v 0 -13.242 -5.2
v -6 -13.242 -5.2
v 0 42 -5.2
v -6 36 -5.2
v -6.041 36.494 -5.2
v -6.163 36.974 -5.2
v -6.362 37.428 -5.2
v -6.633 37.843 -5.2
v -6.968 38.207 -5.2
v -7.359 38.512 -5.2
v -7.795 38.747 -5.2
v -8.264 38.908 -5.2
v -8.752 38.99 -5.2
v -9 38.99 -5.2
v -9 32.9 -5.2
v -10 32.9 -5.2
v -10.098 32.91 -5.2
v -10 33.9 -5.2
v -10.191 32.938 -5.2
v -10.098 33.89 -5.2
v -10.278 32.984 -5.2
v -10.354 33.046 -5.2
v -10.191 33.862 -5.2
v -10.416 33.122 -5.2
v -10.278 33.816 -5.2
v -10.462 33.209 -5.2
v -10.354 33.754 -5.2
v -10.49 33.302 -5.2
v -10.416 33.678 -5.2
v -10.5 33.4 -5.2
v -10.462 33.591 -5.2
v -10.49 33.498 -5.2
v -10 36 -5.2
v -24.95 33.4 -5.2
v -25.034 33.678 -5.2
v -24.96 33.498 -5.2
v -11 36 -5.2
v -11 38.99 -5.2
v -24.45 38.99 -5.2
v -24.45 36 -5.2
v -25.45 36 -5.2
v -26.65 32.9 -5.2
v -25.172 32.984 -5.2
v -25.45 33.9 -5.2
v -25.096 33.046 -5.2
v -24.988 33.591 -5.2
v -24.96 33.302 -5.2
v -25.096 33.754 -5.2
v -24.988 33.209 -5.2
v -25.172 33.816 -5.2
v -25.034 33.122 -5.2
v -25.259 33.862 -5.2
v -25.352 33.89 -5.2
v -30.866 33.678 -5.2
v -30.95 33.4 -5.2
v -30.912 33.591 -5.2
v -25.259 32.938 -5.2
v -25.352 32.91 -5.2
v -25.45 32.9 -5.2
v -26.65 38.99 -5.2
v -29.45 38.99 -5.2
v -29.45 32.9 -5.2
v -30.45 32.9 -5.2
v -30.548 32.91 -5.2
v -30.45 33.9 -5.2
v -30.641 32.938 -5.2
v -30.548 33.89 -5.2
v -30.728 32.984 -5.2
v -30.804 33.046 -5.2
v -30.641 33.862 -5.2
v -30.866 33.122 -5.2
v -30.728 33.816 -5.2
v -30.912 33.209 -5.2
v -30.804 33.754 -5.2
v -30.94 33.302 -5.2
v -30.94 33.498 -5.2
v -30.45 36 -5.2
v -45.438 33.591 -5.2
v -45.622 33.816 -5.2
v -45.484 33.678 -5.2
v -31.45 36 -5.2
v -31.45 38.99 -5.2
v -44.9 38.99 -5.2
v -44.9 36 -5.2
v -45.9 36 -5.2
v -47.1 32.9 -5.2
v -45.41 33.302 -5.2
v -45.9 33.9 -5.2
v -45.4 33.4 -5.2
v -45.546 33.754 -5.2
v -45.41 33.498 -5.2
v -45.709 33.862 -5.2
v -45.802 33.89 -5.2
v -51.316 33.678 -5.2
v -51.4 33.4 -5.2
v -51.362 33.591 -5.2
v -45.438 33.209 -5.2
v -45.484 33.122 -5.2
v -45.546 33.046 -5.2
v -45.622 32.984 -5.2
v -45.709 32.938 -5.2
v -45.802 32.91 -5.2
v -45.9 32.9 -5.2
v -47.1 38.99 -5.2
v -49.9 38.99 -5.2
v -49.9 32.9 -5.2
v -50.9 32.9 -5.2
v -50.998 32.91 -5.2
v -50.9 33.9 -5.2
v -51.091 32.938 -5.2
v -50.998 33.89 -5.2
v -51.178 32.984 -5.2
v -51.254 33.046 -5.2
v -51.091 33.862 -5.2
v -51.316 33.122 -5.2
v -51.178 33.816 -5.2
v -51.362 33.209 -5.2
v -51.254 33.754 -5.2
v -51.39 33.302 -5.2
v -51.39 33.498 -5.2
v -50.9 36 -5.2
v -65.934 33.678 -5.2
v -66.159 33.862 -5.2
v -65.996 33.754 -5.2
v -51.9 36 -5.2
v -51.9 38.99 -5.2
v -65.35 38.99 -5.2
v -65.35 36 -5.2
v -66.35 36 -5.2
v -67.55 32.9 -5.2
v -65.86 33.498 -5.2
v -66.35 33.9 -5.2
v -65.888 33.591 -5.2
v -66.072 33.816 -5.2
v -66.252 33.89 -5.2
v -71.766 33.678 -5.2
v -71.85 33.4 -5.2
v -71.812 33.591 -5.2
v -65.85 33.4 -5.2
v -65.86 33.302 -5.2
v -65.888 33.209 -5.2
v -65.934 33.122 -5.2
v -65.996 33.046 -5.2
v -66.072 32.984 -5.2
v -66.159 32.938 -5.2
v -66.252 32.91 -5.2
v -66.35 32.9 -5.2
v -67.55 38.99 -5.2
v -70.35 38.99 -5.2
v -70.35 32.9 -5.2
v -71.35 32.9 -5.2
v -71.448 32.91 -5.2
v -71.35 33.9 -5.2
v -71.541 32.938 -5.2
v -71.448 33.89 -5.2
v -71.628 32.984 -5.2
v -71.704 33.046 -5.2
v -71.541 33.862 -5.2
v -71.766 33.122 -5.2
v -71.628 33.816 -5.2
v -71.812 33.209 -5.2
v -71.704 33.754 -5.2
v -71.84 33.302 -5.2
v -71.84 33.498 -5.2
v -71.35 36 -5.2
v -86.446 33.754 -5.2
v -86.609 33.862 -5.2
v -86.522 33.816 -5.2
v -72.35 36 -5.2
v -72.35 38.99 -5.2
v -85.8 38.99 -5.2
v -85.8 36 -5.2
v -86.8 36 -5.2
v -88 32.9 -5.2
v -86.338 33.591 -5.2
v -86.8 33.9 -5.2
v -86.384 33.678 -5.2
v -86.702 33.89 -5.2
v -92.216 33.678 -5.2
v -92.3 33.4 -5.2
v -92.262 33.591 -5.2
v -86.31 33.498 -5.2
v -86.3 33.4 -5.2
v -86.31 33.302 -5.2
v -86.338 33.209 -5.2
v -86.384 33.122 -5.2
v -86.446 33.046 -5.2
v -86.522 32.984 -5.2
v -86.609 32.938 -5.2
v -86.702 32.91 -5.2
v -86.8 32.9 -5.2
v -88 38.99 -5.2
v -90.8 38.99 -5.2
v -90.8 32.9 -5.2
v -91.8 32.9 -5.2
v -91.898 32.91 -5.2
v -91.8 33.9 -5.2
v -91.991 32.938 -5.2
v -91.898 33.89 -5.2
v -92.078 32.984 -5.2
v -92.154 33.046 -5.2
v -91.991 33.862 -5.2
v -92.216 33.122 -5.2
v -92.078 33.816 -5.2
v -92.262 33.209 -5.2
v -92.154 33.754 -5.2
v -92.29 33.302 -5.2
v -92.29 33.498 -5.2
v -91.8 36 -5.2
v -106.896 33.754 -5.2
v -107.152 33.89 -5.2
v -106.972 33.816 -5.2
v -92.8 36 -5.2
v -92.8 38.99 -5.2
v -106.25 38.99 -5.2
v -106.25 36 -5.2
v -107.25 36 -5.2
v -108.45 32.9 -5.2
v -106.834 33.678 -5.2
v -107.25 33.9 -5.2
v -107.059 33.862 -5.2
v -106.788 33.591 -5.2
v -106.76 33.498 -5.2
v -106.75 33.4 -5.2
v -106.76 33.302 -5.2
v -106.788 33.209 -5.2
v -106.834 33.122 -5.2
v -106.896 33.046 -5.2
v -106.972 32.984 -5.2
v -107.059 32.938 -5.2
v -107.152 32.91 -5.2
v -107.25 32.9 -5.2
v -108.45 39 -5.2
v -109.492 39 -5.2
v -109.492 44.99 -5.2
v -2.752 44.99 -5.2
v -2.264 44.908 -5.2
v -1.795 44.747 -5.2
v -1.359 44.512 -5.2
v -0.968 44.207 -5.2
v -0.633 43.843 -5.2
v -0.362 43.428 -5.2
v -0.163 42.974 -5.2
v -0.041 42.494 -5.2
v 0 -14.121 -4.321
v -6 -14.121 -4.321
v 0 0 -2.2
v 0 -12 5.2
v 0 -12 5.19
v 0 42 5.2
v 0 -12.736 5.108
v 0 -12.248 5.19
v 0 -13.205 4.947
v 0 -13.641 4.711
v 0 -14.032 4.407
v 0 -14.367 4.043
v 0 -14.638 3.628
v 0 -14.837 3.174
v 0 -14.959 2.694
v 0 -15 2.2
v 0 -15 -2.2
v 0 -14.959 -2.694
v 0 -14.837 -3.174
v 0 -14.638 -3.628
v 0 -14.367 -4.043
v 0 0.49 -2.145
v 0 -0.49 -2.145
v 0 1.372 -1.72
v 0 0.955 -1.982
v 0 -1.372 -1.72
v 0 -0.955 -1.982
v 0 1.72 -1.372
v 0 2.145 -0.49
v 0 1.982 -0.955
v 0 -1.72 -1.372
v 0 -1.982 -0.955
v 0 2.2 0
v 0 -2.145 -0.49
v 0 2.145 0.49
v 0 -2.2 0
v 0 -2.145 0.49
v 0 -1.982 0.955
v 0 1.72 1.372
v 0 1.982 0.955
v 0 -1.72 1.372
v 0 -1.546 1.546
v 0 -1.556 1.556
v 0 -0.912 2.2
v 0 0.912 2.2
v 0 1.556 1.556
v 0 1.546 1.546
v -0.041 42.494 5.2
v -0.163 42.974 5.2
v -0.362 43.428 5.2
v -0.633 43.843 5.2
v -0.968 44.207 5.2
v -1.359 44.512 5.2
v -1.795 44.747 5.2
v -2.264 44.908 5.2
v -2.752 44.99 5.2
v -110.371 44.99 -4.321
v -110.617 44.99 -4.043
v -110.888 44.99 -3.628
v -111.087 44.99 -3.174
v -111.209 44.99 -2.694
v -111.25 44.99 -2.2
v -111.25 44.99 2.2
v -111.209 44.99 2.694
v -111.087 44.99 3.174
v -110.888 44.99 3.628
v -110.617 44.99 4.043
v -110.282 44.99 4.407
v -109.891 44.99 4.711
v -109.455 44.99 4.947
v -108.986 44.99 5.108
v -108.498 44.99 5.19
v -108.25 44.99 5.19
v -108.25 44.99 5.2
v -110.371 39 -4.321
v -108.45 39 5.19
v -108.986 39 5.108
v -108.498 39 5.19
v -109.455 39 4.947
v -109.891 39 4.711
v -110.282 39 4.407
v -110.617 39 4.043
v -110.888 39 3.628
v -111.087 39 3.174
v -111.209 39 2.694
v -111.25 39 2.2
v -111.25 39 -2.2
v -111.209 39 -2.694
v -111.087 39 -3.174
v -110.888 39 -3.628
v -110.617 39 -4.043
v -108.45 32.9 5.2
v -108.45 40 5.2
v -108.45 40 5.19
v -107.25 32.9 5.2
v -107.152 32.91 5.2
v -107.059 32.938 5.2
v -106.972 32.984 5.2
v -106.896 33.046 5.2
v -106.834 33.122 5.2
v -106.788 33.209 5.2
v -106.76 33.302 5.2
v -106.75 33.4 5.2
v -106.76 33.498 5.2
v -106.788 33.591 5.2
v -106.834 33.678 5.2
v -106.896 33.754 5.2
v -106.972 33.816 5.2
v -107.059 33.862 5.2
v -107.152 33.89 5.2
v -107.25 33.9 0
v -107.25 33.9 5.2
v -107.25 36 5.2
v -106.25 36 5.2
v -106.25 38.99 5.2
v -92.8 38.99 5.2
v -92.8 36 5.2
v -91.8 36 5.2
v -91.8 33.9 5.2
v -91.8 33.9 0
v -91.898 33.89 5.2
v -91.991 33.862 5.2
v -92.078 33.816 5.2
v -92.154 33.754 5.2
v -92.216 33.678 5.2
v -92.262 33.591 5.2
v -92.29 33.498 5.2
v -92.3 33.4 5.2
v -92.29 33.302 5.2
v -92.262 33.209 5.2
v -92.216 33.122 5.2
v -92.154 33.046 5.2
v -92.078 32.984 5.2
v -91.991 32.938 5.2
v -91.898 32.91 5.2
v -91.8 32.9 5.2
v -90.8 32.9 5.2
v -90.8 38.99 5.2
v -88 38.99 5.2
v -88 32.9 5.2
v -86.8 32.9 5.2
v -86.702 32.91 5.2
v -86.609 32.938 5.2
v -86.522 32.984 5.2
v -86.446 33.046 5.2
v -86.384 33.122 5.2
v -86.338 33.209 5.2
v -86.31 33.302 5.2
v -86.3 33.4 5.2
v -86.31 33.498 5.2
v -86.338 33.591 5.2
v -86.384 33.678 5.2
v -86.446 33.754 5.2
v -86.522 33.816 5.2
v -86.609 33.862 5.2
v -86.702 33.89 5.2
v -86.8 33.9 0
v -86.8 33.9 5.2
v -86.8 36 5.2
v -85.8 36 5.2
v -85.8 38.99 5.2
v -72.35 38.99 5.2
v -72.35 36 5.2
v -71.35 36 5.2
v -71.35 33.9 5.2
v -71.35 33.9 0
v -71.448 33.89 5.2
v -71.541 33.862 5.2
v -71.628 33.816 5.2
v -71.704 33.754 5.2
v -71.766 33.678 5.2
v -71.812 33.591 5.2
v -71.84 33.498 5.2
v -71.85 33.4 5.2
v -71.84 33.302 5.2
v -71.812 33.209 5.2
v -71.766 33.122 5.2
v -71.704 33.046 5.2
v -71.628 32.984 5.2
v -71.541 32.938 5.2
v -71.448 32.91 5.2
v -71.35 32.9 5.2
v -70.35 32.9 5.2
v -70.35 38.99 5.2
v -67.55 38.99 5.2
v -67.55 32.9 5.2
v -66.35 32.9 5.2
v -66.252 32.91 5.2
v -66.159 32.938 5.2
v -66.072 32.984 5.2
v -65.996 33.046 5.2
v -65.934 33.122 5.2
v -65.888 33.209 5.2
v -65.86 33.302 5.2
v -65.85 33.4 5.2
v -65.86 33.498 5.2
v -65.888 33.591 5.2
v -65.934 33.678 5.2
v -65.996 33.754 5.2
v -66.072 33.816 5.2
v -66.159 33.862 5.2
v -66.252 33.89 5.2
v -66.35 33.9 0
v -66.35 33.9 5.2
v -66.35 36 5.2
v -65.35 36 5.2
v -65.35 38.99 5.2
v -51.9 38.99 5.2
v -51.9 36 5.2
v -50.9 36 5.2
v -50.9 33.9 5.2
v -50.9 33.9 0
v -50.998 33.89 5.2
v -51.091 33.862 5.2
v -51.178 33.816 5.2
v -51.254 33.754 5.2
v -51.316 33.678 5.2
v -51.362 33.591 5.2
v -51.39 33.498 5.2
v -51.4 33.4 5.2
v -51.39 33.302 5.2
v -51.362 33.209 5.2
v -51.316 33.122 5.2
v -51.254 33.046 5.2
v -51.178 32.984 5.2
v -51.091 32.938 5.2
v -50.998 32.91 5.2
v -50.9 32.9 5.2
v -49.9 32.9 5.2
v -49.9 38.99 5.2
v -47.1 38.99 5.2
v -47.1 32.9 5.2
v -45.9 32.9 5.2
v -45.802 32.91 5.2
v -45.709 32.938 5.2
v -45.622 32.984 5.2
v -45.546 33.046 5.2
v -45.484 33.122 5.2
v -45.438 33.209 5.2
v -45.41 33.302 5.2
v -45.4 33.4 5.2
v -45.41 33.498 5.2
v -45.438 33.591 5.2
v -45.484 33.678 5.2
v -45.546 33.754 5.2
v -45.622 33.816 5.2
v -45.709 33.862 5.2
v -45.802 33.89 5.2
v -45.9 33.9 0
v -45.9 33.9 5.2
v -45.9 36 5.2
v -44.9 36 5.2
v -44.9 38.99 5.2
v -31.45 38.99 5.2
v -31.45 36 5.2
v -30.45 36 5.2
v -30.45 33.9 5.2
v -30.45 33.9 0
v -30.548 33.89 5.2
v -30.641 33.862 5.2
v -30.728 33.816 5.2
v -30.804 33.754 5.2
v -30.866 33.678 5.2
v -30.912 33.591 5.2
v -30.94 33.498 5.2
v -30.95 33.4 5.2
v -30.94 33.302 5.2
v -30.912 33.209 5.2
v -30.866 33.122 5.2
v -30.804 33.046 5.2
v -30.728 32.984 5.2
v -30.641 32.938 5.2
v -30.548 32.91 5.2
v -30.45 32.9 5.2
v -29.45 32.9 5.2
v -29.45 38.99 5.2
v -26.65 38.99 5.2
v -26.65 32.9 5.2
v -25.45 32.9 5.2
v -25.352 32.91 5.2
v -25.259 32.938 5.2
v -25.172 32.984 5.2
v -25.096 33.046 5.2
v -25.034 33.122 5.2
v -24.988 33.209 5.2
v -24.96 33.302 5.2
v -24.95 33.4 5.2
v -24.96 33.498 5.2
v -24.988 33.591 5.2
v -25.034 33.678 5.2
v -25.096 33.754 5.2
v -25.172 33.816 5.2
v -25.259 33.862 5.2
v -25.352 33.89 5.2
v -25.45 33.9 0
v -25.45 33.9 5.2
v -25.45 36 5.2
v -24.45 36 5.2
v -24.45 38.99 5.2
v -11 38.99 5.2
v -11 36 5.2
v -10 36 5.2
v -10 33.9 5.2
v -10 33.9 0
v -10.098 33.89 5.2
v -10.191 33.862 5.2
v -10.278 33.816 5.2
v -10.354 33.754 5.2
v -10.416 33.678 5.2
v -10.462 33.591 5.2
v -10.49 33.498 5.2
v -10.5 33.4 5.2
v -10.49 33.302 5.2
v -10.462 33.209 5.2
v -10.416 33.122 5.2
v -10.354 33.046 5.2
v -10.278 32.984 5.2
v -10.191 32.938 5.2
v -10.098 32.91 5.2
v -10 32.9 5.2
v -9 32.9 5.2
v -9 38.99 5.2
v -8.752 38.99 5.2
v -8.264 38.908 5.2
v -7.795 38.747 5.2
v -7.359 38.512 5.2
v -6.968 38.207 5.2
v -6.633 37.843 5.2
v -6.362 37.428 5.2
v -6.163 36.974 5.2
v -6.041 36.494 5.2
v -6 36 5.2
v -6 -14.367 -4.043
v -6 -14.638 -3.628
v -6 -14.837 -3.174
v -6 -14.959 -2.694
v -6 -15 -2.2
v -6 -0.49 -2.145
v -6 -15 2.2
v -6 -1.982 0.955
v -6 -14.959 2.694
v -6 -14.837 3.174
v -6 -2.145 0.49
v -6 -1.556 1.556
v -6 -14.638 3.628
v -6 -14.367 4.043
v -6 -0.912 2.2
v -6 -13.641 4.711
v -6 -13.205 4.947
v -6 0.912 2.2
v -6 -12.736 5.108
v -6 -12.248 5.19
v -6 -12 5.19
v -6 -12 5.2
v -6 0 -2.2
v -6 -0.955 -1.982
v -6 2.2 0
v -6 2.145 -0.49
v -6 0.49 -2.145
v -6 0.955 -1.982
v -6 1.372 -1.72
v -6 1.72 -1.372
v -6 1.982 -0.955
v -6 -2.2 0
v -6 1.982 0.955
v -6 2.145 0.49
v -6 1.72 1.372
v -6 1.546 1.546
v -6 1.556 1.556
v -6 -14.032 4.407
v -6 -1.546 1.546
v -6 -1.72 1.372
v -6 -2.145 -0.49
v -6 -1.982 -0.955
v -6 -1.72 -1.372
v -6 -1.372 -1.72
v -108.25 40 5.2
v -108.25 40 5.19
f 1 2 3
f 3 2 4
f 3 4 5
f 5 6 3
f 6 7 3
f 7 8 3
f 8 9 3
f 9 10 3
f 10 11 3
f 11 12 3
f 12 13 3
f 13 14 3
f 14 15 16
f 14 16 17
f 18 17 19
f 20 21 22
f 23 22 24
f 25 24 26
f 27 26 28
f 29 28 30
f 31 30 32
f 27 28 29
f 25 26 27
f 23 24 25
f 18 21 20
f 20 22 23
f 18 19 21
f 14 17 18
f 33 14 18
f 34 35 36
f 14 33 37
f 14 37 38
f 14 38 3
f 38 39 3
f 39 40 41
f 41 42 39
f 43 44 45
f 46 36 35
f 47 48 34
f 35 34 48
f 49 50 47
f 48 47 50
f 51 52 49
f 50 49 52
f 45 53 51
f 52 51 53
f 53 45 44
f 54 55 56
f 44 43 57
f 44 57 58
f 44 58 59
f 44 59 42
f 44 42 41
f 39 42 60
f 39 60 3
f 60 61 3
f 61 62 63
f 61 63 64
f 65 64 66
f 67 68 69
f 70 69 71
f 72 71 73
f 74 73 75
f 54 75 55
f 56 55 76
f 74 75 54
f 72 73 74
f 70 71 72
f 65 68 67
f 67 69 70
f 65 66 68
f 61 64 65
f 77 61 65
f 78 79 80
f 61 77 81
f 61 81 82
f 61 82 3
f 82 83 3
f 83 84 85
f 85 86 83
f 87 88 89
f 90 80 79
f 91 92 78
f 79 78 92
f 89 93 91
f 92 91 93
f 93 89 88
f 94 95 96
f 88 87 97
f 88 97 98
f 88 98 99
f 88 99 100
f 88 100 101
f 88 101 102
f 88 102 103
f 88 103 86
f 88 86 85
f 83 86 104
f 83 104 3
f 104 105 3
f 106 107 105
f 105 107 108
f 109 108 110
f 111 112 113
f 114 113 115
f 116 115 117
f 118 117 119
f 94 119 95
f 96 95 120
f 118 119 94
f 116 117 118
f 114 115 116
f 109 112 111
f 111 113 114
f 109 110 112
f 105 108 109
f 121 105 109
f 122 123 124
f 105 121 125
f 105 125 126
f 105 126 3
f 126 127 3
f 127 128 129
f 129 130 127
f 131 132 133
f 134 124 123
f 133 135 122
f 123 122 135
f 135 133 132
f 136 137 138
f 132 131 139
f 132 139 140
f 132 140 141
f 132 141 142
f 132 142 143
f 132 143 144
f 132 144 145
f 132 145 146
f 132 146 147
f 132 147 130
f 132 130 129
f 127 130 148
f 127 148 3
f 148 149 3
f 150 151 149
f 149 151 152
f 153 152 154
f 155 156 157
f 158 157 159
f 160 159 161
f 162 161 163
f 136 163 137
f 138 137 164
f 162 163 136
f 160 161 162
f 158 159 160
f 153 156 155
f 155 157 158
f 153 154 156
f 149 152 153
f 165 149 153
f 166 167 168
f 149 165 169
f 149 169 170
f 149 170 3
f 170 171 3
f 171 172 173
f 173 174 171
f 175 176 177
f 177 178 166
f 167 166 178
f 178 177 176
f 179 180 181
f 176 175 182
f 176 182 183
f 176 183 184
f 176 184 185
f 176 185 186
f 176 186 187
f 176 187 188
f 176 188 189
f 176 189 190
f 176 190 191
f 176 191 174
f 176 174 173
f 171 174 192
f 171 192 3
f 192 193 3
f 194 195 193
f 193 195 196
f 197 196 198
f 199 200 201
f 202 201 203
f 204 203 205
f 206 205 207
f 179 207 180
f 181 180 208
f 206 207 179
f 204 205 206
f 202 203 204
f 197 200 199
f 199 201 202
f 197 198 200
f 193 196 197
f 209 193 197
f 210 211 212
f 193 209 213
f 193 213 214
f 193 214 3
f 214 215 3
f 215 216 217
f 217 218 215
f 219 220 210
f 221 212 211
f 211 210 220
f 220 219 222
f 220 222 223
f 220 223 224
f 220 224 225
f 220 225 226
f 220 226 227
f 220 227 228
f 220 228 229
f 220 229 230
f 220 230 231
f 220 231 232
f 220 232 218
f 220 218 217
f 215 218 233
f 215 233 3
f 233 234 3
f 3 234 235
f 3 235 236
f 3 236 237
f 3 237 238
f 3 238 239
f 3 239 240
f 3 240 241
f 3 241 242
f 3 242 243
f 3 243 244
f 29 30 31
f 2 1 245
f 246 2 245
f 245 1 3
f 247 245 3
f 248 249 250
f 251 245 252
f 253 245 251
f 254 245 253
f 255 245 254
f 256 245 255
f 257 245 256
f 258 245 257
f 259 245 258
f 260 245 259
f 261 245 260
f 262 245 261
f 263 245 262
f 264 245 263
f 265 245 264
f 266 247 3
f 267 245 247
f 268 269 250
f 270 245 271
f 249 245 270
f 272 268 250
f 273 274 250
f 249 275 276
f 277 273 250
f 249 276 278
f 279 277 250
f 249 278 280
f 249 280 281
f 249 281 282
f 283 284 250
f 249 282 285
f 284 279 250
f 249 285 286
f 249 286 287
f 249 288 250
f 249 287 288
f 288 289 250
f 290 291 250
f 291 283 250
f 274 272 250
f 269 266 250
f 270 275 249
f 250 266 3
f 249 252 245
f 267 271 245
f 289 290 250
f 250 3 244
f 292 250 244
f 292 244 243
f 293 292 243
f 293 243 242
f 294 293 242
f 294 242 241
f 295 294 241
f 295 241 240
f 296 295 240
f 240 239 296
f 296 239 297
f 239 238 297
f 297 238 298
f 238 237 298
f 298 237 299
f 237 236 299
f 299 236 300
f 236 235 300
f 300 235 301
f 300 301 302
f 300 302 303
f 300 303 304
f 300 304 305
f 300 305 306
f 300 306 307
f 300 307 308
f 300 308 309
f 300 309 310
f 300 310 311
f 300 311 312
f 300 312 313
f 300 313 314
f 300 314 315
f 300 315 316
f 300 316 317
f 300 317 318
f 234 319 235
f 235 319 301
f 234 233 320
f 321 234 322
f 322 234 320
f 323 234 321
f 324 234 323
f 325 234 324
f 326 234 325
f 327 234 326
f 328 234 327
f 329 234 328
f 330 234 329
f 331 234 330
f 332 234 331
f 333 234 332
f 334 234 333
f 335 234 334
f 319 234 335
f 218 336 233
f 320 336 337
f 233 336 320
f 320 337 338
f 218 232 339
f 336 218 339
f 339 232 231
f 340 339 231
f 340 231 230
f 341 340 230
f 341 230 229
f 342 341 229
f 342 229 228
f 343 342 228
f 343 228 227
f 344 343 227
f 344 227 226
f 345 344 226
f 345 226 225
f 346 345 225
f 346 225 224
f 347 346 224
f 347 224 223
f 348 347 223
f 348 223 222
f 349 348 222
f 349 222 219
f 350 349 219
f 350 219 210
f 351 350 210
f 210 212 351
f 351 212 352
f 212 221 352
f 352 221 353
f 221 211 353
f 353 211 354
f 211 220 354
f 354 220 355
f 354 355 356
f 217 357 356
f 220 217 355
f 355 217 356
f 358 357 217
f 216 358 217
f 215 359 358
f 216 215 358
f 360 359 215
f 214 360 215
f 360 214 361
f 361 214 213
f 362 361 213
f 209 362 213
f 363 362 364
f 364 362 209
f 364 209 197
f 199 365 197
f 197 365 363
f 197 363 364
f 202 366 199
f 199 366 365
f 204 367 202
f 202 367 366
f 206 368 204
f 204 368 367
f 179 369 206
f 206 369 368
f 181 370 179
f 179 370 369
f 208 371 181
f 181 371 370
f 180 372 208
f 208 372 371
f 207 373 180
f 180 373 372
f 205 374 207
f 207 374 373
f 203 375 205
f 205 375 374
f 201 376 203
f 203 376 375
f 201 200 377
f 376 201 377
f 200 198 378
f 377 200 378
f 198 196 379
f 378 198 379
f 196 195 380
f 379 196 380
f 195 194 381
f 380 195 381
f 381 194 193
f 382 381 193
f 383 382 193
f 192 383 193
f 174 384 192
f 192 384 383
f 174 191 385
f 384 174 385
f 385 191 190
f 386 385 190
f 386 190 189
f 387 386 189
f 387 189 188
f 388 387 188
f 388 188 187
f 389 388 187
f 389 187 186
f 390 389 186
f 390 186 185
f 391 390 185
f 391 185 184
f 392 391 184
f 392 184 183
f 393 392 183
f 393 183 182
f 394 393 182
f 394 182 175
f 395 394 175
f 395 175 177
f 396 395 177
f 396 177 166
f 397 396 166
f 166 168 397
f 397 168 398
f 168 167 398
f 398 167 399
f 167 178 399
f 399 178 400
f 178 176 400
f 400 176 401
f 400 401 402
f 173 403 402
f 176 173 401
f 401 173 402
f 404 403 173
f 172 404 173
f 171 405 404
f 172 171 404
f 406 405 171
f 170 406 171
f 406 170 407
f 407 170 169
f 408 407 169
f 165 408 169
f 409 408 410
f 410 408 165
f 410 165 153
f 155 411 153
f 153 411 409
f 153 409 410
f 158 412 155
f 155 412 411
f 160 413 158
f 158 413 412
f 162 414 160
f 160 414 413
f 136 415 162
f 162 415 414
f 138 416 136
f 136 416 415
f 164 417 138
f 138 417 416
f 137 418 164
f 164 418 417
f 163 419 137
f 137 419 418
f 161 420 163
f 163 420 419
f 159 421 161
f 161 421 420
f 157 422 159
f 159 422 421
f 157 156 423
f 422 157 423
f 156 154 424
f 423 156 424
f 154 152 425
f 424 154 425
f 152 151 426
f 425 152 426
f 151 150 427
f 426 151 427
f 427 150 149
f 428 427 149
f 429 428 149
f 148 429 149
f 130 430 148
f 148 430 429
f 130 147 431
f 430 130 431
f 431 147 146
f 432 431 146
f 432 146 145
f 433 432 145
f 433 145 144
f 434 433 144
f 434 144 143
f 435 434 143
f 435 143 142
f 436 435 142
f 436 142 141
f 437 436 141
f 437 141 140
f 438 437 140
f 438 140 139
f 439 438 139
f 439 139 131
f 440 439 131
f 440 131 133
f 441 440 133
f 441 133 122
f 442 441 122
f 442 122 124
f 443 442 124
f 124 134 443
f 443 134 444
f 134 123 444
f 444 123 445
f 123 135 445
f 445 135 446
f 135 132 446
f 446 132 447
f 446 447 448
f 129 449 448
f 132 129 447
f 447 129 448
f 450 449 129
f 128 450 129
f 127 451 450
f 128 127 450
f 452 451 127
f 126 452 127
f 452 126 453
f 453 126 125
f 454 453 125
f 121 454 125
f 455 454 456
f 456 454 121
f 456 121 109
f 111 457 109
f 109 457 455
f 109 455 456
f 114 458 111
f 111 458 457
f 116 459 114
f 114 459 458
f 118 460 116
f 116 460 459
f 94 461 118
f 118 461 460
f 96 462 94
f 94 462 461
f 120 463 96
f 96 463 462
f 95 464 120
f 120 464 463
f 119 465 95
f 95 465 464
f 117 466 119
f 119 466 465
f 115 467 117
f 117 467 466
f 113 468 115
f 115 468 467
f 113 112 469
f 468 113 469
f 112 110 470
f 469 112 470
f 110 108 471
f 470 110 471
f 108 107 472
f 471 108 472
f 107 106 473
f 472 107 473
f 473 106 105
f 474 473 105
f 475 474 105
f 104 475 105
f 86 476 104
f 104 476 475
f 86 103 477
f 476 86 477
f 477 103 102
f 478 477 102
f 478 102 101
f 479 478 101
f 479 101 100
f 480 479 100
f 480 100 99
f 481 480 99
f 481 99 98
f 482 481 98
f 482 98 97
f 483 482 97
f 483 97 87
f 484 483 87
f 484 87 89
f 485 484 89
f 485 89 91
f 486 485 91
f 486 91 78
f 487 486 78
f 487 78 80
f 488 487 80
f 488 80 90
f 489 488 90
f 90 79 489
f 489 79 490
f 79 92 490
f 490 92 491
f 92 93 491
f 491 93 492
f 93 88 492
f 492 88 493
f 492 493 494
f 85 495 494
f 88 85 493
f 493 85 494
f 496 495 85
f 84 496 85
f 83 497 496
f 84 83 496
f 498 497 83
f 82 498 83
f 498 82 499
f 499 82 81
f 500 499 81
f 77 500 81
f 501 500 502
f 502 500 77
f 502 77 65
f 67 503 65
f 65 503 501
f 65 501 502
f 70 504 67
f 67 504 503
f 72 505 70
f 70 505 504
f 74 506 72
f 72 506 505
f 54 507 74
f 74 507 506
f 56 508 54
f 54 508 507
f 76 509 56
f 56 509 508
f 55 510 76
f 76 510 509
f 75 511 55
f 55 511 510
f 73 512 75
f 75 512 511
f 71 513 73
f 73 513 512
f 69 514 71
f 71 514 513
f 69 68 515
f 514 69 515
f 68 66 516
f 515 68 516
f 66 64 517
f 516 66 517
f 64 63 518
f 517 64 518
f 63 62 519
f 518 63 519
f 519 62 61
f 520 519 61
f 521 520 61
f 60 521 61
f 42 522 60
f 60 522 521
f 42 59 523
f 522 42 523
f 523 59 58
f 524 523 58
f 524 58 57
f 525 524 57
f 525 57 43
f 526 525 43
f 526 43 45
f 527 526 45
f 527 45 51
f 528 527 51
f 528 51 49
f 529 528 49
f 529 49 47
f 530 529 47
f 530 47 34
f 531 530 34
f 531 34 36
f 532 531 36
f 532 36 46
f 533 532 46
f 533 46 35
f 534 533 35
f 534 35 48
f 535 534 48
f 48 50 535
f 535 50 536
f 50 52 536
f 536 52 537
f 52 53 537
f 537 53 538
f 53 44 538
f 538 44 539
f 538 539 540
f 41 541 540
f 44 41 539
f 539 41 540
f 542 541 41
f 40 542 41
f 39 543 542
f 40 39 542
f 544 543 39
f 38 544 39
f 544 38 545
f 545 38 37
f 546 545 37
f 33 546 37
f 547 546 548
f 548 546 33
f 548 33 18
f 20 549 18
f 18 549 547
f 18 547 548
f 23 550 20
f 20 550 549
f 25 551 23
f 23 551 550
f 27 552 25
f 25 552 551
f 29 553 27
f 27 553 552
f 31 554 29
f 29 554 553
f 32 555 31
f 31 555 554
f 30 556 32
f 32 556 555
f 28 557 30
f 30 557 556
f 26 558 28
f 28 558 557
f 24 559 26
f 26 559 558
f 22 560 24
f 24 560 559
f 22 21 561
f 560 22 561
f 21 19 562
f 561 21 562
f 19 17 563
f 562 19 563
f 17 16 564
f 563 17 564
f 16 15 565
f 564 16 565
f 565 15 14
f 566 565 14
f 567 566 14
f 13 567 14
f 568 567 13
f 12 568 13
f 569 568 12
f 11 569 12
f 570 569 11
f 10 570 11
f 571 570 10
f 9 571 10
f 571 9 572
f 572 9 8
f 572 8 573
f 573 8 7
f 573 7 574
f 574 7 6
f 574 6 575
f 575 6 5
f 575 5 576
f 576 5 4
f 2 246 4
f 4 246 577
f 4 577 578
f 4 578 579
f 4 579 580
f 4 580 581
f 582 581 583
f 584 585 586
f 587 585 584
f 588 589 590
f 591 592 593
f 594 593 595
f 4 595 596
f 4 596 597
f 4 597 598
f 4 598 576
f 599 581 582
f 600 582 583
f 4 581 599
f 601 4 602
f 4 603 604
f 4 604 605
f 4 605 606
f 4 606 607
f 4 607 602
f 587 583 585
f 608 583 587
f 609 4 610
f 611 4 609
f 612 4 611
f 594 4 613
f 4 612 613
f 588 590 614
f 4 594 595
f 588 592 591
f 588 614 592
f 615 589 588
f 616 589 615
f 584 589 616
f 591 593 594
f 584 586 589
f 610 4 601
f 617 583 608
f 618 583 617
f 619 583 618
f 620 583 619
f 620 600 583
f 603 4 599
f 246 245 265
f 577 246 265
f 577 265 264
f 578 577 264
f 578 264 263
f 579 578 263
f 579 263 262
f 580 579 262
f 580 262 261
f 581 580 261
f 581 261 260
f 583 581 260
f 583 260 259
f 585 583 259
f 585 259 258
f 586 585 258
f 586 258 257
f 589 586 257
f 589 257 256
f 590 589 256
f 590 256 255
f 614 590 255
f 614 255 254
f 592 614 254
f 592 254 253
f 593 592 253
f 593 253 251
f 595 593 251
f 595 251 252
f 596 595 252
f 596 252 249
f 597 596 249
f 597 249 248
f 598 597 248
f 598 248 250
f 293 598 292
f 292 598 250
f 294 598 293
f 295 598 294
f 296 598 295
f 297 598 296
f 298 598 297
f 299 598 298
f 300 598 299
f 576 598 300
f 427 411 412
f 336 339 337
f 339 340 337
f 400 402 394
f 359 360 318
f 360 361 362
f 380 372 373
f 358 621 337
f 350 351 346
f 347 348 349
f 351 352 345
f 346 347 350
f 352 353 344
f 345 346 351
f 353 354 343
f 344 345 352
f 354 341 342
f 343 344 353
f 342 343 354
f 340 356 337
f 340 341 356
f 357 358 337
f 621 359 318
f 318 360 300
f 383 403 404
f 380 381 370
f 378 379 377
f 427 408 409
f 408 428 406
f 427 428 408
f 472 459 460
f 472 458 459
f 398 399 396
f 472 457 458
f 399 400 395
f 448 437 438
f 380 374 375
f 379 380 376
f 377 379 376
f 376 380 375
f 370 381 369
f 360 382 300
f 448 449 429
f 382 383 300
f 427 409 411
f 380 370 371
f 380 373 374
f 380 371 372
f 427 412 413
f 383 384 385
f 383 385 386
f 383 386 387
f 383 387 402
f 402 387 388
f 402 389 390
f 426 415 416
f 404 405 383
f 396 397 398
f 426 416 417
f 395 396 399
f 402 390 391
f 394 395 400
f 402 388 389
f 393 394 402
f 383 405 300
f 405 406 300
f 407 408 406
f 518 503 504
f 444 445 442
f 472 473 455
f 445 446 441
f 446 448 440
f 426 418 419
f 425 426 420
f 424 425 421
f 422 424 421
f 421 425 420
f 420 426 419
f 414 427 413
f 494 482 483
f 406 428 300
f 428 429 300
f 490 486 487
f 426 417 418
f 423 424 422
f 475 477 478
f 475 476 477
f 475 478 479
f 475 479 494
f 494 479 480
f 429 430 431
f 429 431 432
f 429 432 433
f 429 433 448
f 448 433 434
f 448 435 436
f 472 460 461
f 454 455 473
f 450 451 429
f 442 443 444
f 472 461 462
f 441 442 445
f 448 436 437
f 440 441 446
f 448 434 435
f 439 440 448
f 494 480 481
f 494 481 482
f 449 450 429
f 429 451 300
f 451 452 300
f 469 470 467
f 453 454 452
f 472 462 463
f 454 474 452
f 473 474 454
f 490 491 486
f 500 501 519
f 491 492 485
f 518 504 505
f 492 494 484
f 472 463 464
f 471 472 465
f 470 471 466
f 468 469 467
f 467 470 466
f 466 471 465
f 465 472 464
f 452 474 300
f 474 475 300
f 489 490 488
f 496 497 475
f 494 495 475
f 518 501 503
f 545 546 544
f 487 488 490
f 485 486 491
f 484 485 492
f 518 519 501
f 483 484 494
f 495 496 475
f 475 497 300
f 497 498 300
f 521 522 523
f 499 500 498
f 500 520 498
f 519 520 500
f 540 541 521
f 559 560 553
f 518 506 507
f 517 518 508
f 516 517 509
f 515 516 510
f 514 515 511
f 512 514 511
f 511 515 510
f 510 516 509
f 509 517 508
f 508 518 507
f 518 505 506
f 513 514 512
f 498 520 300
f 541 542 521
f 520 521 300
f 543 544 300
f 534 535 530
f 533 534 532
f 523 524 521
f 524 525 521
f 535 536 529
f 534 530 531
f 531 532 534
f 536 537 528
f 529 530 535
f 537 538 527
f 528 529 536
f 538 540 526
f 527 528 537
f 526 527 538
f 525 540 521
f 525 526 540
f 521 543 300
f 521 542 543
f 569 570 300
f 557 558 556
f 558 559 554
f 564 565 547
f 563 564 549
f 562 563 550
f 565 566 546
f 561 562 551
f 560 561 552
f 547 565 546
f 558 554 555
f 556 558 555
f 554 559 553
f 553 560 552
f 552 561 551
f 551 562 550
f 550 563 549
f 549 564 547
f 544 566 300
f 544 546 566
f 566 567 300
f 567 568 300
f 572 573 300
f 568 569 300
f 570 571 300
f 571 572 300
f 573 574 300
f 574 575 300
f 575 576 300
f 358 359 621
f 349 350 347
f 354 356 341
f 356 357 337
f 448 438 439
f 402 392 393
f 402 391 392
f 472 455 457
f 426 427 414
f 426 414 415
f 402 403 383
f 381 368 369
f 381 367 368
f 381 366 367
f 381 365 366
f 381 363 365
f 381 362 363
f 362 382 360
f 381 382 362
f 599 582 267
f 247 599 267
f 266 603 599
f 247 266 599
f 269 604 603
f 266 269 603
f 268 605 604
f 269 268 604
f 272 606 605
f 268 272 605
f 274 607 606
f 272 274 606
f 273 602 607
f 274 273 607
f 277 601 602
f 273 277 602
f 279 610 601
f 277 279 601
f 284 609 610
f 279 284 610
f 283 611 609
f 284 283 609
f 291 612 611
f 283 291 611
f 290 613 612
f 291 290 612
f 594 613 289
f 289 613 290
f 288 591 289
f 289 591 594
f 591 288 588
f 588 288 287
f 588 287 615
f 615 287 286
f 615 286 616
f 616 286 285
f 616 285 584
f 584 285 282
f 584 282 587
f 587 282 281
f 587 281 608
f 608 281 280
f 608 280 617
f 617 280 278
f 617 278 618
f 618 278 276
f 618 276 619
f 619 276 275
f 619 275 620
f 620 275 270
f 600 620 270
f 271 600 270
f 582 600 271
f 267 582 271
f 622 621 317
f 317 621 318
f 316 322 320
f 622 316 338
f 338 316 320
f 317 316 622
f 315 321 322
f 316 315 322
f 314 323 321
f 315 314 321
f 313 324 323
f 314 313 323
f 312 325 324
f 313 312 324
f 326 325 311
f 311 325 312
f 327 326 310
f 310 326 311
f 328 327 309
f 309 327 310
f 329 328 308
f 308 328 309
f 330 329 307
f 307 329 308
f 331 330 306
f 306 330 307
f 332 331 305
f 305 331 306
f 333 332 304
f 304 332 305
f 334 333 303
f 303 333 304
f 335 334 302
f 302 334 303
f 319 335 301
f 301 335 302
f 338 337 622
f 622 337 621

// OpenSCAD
// file: functions.scad
/*******************************************************************

This OpenSCAD code and its rendered 3D model are part of the

	Kühling&Kühling RepRap Industrial 3D Printer


All details, BOM, assembling instructions and latest sources:
	http://kuehlingkuehling.de

Designed and developed by:
	Jonas Kühling <mail@jonaskuehling.de>
	Simon Kühling <mail@simonkuehling.de>

Licensed under:
	Creative Commons Attribution-ShareAlike
	CC BY-SA 3.0
	http://creativecommons.org/licenses/by-sa/3.0/

*******************************************************************/

module teardrop (r=4.5,h=20,alpha=45,teardropcorner=0,fulldrop=0){		// tear drop hole for top-centering
											// use teardropcorner=1 for bottom horizontal corners
	render()
	translate([-h/2,0,0])
		rotate([-270,0+(teardropcorner*180),90])
			difference(){
				linear_extrude(height=h){
					circle(r);
					polygon(points=[[0,0],[r*cos(alpha),r*sin(alpha)],[0,r/sin(alpha)],[-r*cos(alpha),r*sin(alpha)]], paths=[[0,1,2,3]]);
				}
				if(fulldrop==0) 
					translate([0,(r/sin(alpha))/2+r,h/2]) cube([2*r+2,r/sin(alpha),h+2],center=true);
			}
}

//teardrop(4.5,22,fulldrop=true);



module teardropcentering (r=4.5,h=20,alpha=45){				// tear drop hole for top-centering
	centering_offset_factor = 1.1;
	render()
	translate([-h/2,0,0])
		rotate([-270,0,90])
			difference(){
				linear_extrude(height=h){
					circle(r, $fn=24);
					polygon(points=[[0,0],[r*cos(alpha),r*sin(alpha)],[0,r/sin(alpha)],[-r*cos(alpha),r*sin(alpha)]], paths=[[0,1,2,3]]);
				}
				translate([0,(r/sin(alpha))/2+r*centering_offset_factor,h/2]) cube([2*r+2,r/sin(alpha),h+2],center=true);
			}
}

//teardropcentering();



module teardropcentering_half (r=4.5,h=20, bottom=0,alpha=45){				// tear drop hole for top-centering
																// upper half (bottom=0) or bottom half (bottom=1)
	centering_offset_factor = 1.2;
	render()
	translate([-h/2,0,0])
		rotate([-270,0,90])
			difference(){
				linear_extrude(height=h){
					circle(r, $fn=24);
					polygon(points=[[0,0],[r*cos(alpha),r*sin(alpha)],[0,r/sin(alpha)],[-r*cos(alpha),r*sin(alpha)]], paths=[[0,1,2,3]]);
				}
				translate([0,(r/sin(alpha))/2+r*centering_offset_factor,h/2]) cube([2*r+2,r/sin(alpha),h+2],center=true);
				translate([0,-(r*centering_offset_factor)/2-0.5+bottom*(r*centering_offset_factor+1),h/2]) cube([2*r+2,r*centering_offset_factor+1,h+2],center=true);
			}
}

//teardropcentering_half(bottom=0);


module polyhole(d,h){
	n = max(round(2 * d),3);
	cylinder(h = h, r = (d / 2) / cos (180 / n), $fn = n, center=true);
}



module roundcorner(radius,edge_length){
	render()
	translate([0,0,-1])
		difference(){
			translate([-1,-1,0])
				cube(size = [radius+1,radius+1,edge_length+2], center = false);
			translate(v = [radius,radius,-1])
				cylinder(h = edge_length+4, r=radius, center=false,$fs=0.1);
		}
}

//roundcorner(5,5);



module roundcorner_tear(radius,edge_length){
	render()
	difference(){
		translate([-1,-1,-1])
			cube(size = [edge_length+2, radius+1, radius+1], center = false);
		translate([(edge_length+4)/2-2, radius, radius])
			teardrop(radius, edge_length+4,teardropcorner=1);
	}
}

//roundcorner_tear(8,20);


module roundedge_tear(radius){
	render()
	difference(){
		translate([-1,-1,-1])
			cube(size = [radius+1, radius+1, radius+1], center = false);
		translate([radius,radius,radius])
			union(){
				sphere(r=radius, $fs=0.1);
				translate([0,0,-radius])
					cylinder(r1=(radius*sin(45))-(radius-(radius*sin(45))),r2=radius*sin(45),h=(radius-(radius*sin(45))), $fs=0.1);
			}
	}
}

//roundedge_tear(20);



module roundedge(radius){
	render()
	difference(){
		translate([-1,-1,-1])
			cube(size = [radius+1, radius+1, radius+1], center = false);
		translate([radius,radius,radius])
			sphere(r=radius, $fs=0.1);
	}
}

//roundedge(5);


module nut_trap(nut_wrench_size,trap_height,vertical=0, clearance=0.2,center=true){		// M3 wrench size = 5.5
	radius = cornerdiameter(nut_wrench_size+2*clearance) /2;
	rotate([0,vertical*90,0])
		cylinder(h = trap_height, r = radius, center=center, $fn = 6);
}

//nut_trap(5,5,0);

module nut_slot(nut_wrench_size,nut_height, nut_elevation,vertical=0, clearance=0.2){		// M3 wrench size = 5.5
	radius = cornerdiameter(nut_wrench_size+2*clearance) /2;
	slot_height = nut_height+2*clearance;
	slot_width = nut_wrench_size+2*clearance;
	rotate([0,vertical*270,0]){
		cylinder(h = slot_height, r = radius, center=true, $fn = 6);
		translate([0,-slot_width/2,-slot_height/2]) cube([nut_elevation+1,slot_width,slot_height]);
	}
}

//nut_slot(5.5,3,4,1);

function cornerdiameter(wrench_size) =  2* ((wrench_size)/2)/ cos(180/6);
function cornerdiameter_8(wrench_size) =  2* ((wrench_size)/2)/ cos(180/8);
// main file
/*******************************************************************

This OpenSCAD code and its rendered 3D model are part of the

	Kühling&Kühling RepRap Industrial 3D Printer


All details, BOM, assembling instructions and latest sources:
	http://kuehlingkuehling.de

Designed and developed by:
	Jonas Kühling <mail@jonaskuehling.de>
	Simon Kühling <mail@simonkuehling.de>

License:
	Creative Commons Attribution-ShareAlike 4.0 International (CC BY-SA 4.0)
	https://creativecommons.org/licenses/by-sa/4.0/

*******************************************************************/

include <configuration.scad>





// RENDERING
rotate([0,-90,0]) air_heater_mosfetboard_mount(boards=5);





module air_heater_mosfetboard_mount(boards=5){

	air_heater_mosfetboard_mount_body_height = 2*wall+wall+boards*(wall_thin+air_heater_mosfetboard_height+wall_thin+wall);

	difference(){

		// main body
		union(){
			intersection(){
				union(){
					hull(){
						translate([-air_heater_mosfetboard_mount_body_width/2+wall,-frame_width/2+wall,wall])
							rotate([0,-90,0])
								teardrop(wall,2*wall);
						translate([air_heater_mosfetboard_mount_body_width/2-wall,-frame_width/2+wall,wall])
							rotate([0,-90,0])
								teardrop(wall,2*wall);
						translate([-air_heater_mosfetboard_mount_body_width/2,-frame_width/2+air_heater_mosfetboard_mount_body_length-wall,0])
							cube([air_heater_mosfetboard_mount_body_width,wall,2*wall]);
					}
					hull(){
						translate([-air_heater_mosfetboard_mount_body_width/2+wall,-frame_width/2+air_heater_mosfetboard_mount_body_length-wall,air_heater_mosfetboard_mount_body_height-wall])
							rotate([90,0,0])
								rotate([0,-90,0])
									teardrop(wall,2*wall);
						translate([air_heater_mosfetboard_mount_body_width/2-wall,-frame_width/2+air_heater_mosfetboard_mount_body_length-wall,air_heater_mosfetboard_mount_body_height-wall])
							rotate([90,0,0])
								rotate([0,-90,0])
									teardrop(wall,2*wall);
						translate([-air_heater_mosfetboard_mount_body_width/2,-frame_width/2+air_heater_mosfetboard_mount_body_length-2*wall,0])
							cube([air_heater_mosfetboard_mount_body_width,2*wall,wall]);
					}
					translate([-air_heater_mosfetboard_mount_body_width/2,-frame_width/2+wall,0])
						cube([air_heater_mosfetboard_mount_body_width,air_heater_mosfetboard_mount_body_length-wall,air_heater_mosfetboard_mount_body_height-wall]);
				}
				difference(){
					hull(){
						translate([0,-frame_width/2+air_heater_mosfetboard_mount_body_length-wall,wall])
							rotate([0,90,0])
								cylinder(r=wall,h=air_heater_mosfetboard_mount_body_width+2,center=true);
						translate([0,-frame_width/2+air_heater_mosfetboard_mount_body_length-wall,air_heater_mosfetboard_mount_body_height+wall])
							rotate([0,90,0])
								cylinder(r=wall,h=air_heater_mosfetboard_mount_body_width+2,center=true);
						translate([0,-frame_width/2-wall,wall])
							rotate([0,90,0])
								cylinder(r=wall,h=air_heater_mosfetboard_mount_body_width+2,center=true);
						translate([0,-frame_width/2-wall,air_heater_mosfetboard_mount_body_height+wall])
							rotate([0,90,0])
								cylinder(r=wall,h=air_heater_mosfetboard_mount_body_width+2,center=true);
					}
					translate([0,-2*wall,2*wall])
						hull(){
							translate([0,-frame_width/2+air_heater_mosfetboard_mount_body_length-wall,wall])
								rotate([0,90,0])
									cylinder(r=wall,h=air_heater_mosfetboard_mount_body_width+2,center=true);
							translate([0,-frame_width/2+air_heater_mosfetboard_mount_body_length-wall,air_heater_mosfetboard_mount_body_height+wall])
								rotate([0,90,0])
									cylinder(r=wall,h=air_heater_mosfetboard_mount_body_width+2,center=true);
							translate([0,-frame_width/2-wall,wall])
								rotate([0,90,0])
									cylinder(r=wall,h=air_heater_mosfetboard_mount_body_width+2,center=true);
							translate([0,-frame_width/2-wall,air_heater_mosfetboard_mount_body_height+wall])
								rotate([0,90,0])
									cylinder(r=wall,h=air_heater_mosfetboard_mount_body_width+2,center=true);
						}
				}
			}
		}

		// frame mount screw hole
		translate([0,0,wall])
			rotate([0,90,0])
				teardrop(frame_screw_dia/2+clearance,2*wall+2);
	}

	// mosfet board mount
	for(i=[0:boards-1])
		translate([0,0,i*(wall_thin+air_heater_mosfetboard_height+wall_thin+wall)])
			difference(){
				translate([-air_heater_mosfetboard_mount_body_width/2,-(1+wall+clearance+air_heater_mosfetboard_thickness+clearance+wall_thin)-frame_width/2+air_heater_mosfetboard_mount_body_length-2*wall+1,2*wall+wall])
					cube([air_heater_mosfetboard_mount_body_width,1+wall+clearance+air_heater_mosfetboard_thickness+clearance+wall_thin,wall_thin+clearance+air_heater_mosfetboard_height+wall_thin]);
				translate([-air_heater_mosfetboard_mount_body_width/2-1,-(1+wall+clearance+air_heater_mosfetboard_thickness+clearance+wall_thin)-frame_width/2+air_heater_mosfetboard_mount_body_length-2*wall,2*wall+wall+2*wall_thin])
					cube([air_heater_mosfetboard_mount_body_width+2,1+wall+clearance+air_heater_mosfetboard_thickness+clearance+wall_thin,air_heater_mosfetboard_height-2*wall_thin]);
				difference(){
					translate([-air_heater_mosfetboard_mount_body_width/2-1,-(1+wall+clearance+air_heater_mosfetboard_thickness+clearance+wall_thin)-frame_width/2+air_heater_mosfetboard_mount_body_length-2*wall-wall,2*wall+wall+wall_thin])
						cube([air_heater_mosfetboard_mount_body_width+2,1+wall+clearance+air_heater_mosfetboard_thickness+clearance+wall_thin,air_heater_mosfetboard_height]);
					translate([0,-frame_width/2+air_heater_mosfetboard_mount_body_length-2*wall-wall-clearance-air_heater_mosfetboard_thickness-clearance-wall_thin/2,2*wall+wall+wall_thin])
						rotate([0,90,0])
							cylinder(r=wall_thin/2,h=air_heater_mosfetboard_mount_body_width+2,center=true,$fa=0.1,$fs=0.1);
					translate([0,-frame_width/2+air_heater_mosfetboard_mount_body_length-2*wall-wall-clearance-air_heater_mosfetboard_thickness-clearance-wall_thin/2,2*wall+wall+wall_thin+air_heater_mosfetboard_height])
						rotate([0,90,0])
							cylinder(r=wall_thin/2,h=air_heater_mosfetboard_mount_body_width+2,center=true,$fa=0.1,$fs=0.1);
				}
			}
}
